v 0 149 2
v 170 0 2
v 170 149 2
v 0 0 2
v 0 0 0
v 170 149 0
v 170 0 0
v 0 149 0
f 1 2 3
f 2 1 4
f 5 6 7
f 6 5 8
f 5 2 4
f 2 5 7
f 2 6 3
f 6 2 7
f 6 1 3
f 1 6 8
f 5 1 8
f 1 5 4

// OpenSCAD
// ============================================================
// 板子 / Flat Plate
// 尺寸: 170mm × 149mm × 2mm
// ============================================================

// ---------- 参数 ----------
plate_length = 170;   // X 方向长度 (mm)
plate_width  = 149;   // Y 方向宽度 (mm)
plate_thick  = 2;     // Z 方向厚度 (mm)

// 圆角半径 (设为 0 表示直角)
corner_radius = 0;

// 渲染精度
$fn = 64;

// ---------- 主模型 ----------
module plate(L = plate_length, W = plate_width, T = plate_thick, r = corner_radius) {
    if (r > 0) {
        // 带圆角的板子
        hull() {
            translate([r,         r,         0]) cylinder(h = T, r = r);
            translate([L - r,     r,         0]) cylinder(h = T, r = r);
            translate([r,         W - r,     0]) cylinder(h = T, r = r);
            translate([L - r,     W - r,     0]) cylinder(h = T, r = r);
        }
    } else {
        // 直角板子
        cube([L, W, T]);
    }
}

// ---------- 渲染 ----------
plate();

// ---------- 信息输出 ----------
echo(str("板子尺寸: ", plate_length, " × ", plate_width, " × ", plate_thick, " mm"));
echo(str("板子面积: ", plate_length * plate_width / 100, " cm²"));
echo(str("板子体积: ", plate_length * plate_width * plate_thick / 1000, " cm³"));
